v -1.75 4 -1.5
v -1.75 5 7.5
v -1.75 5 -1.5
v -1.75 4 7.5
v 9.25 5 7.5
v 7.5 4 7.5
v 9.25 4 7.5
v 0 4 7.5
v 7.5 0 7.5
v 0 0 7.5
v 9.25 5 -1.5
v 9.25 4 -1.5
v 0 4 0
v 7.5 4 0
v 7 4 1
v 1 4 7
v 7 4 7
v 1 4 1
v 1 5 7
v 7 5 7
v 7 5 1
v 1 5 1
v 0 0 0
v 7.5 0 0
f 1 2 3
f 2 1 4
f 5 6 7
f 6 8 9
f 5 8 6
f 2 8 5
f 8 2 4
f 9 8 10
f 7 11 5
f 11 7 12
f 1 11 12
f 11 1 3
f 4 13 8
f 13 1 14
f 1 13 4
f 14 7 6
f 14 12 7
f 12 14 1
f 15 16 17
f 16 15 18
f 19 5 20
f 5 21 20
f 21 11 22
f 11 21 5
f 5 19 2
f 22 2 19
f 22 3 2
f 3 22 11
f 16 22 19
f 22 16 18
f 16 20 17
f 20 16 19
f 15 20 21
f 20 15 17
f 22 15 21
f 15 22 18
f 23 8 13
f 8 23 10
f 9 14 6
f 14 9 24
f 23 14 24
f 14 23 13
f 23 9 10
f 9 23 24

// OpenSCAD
$fa = 1;
$fs = 0.4;


cube([7.5, 4, 7.5]);

difference(){
    translate([-1.75, 4, -1.5])
        cube([11, 1, 9]);
    
    translate([1, 1, 1])
        cube([6, 5, 6]);
}    
